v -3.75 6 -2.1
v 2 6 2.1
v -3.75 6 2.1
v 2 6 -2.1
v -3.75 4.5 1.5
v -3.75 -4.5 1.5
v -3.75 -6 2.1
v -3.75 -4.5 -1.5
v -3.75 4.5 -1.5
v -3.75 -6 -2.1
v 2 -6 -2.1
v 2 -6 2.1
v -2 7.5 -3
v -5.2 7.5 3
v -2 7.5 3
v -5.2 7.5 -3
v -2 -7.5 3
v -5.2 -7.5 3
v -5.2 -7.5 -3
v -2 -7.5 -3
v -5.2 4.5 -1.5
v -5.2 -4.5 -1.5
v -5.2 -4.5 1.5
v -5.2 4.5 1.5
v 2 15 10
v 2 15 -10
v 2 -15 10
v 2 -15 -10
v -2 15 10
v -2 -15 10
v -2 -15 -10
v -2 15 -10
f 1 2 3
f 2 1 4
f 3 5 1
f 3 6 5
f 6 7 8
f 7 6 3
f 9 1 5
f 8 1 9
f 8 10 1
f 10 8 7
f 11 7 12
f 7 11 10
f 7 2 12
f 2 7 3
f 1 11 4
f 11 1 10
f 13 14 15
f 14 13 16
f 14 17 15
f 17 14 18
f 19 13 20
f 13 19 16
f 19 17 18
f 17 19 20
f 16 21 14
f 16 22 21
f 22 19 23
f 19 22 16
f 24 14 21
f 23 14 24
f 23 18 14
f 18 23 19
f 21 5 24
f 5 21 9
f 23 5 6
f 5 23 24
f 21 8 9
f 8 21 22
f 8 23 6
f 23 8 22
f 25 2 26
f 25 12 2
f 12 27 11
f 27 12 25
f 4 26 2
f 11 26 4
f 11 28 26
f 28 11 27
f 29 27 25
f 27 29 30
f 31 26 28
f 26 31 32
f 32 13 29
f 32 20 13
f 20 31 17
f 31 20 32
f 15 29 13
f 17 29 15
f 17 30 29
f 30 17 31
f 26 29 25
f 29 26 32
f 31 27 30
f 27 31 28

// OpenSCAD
/**
 * @author OlivierLD
 * 
 * A test, a stand for a Slide Switch
 * Here SPDT Slide Switch
 */
use <../mechanical.parts.scad>

standThickness = 4;

dims = getSpdtSlideDims();

echo("Dimension: L:", dims[0], ", W:", dims[1], ", H:", dims[2]);

VISUALIZATION = false; // Set to true so see the switch in its socket.

difference() {
	union() {
		// Stand
		cube(size=[standThickness, 30, 20], center=true);
		// Bottom for the swicth
	  translate([-3.4, 0, 0]) {
			rotate([0, 0, 90]) {
				wallThickness = 3;
				difference() {
					translate([0, -1.5, 0]) {
						cube(size=[dims[0] + wallThickness, dims[1] + (0.8 * wallThickness), dims[2]], center=true);
					}
					translate([0, 1.5, 0]) {
						cube(size=[dims[0] - 3.0, dims[1] - 0, dims[2] - 3], center=true);
					}
				}
			}
		}		
		if (VISUALIZATION) {
			translate([(- 1 * dims[2] / 2) + (1 * standThickness / 2) + 0.25, 0, 0]) {
				rotate([90, 0, 90]) {
					spdtSlideSwitch();
				}
			}
		}
	}
	if (!VISUALIZATION) {
		translate([(- 1 * dims[2] / 2) + (1 * standThickness / 2) + 0.25, 0, 0]) {
			rotate([90, 0, 90]) {
				#spdtSlideSwitch();
			}
		}
	}
}
